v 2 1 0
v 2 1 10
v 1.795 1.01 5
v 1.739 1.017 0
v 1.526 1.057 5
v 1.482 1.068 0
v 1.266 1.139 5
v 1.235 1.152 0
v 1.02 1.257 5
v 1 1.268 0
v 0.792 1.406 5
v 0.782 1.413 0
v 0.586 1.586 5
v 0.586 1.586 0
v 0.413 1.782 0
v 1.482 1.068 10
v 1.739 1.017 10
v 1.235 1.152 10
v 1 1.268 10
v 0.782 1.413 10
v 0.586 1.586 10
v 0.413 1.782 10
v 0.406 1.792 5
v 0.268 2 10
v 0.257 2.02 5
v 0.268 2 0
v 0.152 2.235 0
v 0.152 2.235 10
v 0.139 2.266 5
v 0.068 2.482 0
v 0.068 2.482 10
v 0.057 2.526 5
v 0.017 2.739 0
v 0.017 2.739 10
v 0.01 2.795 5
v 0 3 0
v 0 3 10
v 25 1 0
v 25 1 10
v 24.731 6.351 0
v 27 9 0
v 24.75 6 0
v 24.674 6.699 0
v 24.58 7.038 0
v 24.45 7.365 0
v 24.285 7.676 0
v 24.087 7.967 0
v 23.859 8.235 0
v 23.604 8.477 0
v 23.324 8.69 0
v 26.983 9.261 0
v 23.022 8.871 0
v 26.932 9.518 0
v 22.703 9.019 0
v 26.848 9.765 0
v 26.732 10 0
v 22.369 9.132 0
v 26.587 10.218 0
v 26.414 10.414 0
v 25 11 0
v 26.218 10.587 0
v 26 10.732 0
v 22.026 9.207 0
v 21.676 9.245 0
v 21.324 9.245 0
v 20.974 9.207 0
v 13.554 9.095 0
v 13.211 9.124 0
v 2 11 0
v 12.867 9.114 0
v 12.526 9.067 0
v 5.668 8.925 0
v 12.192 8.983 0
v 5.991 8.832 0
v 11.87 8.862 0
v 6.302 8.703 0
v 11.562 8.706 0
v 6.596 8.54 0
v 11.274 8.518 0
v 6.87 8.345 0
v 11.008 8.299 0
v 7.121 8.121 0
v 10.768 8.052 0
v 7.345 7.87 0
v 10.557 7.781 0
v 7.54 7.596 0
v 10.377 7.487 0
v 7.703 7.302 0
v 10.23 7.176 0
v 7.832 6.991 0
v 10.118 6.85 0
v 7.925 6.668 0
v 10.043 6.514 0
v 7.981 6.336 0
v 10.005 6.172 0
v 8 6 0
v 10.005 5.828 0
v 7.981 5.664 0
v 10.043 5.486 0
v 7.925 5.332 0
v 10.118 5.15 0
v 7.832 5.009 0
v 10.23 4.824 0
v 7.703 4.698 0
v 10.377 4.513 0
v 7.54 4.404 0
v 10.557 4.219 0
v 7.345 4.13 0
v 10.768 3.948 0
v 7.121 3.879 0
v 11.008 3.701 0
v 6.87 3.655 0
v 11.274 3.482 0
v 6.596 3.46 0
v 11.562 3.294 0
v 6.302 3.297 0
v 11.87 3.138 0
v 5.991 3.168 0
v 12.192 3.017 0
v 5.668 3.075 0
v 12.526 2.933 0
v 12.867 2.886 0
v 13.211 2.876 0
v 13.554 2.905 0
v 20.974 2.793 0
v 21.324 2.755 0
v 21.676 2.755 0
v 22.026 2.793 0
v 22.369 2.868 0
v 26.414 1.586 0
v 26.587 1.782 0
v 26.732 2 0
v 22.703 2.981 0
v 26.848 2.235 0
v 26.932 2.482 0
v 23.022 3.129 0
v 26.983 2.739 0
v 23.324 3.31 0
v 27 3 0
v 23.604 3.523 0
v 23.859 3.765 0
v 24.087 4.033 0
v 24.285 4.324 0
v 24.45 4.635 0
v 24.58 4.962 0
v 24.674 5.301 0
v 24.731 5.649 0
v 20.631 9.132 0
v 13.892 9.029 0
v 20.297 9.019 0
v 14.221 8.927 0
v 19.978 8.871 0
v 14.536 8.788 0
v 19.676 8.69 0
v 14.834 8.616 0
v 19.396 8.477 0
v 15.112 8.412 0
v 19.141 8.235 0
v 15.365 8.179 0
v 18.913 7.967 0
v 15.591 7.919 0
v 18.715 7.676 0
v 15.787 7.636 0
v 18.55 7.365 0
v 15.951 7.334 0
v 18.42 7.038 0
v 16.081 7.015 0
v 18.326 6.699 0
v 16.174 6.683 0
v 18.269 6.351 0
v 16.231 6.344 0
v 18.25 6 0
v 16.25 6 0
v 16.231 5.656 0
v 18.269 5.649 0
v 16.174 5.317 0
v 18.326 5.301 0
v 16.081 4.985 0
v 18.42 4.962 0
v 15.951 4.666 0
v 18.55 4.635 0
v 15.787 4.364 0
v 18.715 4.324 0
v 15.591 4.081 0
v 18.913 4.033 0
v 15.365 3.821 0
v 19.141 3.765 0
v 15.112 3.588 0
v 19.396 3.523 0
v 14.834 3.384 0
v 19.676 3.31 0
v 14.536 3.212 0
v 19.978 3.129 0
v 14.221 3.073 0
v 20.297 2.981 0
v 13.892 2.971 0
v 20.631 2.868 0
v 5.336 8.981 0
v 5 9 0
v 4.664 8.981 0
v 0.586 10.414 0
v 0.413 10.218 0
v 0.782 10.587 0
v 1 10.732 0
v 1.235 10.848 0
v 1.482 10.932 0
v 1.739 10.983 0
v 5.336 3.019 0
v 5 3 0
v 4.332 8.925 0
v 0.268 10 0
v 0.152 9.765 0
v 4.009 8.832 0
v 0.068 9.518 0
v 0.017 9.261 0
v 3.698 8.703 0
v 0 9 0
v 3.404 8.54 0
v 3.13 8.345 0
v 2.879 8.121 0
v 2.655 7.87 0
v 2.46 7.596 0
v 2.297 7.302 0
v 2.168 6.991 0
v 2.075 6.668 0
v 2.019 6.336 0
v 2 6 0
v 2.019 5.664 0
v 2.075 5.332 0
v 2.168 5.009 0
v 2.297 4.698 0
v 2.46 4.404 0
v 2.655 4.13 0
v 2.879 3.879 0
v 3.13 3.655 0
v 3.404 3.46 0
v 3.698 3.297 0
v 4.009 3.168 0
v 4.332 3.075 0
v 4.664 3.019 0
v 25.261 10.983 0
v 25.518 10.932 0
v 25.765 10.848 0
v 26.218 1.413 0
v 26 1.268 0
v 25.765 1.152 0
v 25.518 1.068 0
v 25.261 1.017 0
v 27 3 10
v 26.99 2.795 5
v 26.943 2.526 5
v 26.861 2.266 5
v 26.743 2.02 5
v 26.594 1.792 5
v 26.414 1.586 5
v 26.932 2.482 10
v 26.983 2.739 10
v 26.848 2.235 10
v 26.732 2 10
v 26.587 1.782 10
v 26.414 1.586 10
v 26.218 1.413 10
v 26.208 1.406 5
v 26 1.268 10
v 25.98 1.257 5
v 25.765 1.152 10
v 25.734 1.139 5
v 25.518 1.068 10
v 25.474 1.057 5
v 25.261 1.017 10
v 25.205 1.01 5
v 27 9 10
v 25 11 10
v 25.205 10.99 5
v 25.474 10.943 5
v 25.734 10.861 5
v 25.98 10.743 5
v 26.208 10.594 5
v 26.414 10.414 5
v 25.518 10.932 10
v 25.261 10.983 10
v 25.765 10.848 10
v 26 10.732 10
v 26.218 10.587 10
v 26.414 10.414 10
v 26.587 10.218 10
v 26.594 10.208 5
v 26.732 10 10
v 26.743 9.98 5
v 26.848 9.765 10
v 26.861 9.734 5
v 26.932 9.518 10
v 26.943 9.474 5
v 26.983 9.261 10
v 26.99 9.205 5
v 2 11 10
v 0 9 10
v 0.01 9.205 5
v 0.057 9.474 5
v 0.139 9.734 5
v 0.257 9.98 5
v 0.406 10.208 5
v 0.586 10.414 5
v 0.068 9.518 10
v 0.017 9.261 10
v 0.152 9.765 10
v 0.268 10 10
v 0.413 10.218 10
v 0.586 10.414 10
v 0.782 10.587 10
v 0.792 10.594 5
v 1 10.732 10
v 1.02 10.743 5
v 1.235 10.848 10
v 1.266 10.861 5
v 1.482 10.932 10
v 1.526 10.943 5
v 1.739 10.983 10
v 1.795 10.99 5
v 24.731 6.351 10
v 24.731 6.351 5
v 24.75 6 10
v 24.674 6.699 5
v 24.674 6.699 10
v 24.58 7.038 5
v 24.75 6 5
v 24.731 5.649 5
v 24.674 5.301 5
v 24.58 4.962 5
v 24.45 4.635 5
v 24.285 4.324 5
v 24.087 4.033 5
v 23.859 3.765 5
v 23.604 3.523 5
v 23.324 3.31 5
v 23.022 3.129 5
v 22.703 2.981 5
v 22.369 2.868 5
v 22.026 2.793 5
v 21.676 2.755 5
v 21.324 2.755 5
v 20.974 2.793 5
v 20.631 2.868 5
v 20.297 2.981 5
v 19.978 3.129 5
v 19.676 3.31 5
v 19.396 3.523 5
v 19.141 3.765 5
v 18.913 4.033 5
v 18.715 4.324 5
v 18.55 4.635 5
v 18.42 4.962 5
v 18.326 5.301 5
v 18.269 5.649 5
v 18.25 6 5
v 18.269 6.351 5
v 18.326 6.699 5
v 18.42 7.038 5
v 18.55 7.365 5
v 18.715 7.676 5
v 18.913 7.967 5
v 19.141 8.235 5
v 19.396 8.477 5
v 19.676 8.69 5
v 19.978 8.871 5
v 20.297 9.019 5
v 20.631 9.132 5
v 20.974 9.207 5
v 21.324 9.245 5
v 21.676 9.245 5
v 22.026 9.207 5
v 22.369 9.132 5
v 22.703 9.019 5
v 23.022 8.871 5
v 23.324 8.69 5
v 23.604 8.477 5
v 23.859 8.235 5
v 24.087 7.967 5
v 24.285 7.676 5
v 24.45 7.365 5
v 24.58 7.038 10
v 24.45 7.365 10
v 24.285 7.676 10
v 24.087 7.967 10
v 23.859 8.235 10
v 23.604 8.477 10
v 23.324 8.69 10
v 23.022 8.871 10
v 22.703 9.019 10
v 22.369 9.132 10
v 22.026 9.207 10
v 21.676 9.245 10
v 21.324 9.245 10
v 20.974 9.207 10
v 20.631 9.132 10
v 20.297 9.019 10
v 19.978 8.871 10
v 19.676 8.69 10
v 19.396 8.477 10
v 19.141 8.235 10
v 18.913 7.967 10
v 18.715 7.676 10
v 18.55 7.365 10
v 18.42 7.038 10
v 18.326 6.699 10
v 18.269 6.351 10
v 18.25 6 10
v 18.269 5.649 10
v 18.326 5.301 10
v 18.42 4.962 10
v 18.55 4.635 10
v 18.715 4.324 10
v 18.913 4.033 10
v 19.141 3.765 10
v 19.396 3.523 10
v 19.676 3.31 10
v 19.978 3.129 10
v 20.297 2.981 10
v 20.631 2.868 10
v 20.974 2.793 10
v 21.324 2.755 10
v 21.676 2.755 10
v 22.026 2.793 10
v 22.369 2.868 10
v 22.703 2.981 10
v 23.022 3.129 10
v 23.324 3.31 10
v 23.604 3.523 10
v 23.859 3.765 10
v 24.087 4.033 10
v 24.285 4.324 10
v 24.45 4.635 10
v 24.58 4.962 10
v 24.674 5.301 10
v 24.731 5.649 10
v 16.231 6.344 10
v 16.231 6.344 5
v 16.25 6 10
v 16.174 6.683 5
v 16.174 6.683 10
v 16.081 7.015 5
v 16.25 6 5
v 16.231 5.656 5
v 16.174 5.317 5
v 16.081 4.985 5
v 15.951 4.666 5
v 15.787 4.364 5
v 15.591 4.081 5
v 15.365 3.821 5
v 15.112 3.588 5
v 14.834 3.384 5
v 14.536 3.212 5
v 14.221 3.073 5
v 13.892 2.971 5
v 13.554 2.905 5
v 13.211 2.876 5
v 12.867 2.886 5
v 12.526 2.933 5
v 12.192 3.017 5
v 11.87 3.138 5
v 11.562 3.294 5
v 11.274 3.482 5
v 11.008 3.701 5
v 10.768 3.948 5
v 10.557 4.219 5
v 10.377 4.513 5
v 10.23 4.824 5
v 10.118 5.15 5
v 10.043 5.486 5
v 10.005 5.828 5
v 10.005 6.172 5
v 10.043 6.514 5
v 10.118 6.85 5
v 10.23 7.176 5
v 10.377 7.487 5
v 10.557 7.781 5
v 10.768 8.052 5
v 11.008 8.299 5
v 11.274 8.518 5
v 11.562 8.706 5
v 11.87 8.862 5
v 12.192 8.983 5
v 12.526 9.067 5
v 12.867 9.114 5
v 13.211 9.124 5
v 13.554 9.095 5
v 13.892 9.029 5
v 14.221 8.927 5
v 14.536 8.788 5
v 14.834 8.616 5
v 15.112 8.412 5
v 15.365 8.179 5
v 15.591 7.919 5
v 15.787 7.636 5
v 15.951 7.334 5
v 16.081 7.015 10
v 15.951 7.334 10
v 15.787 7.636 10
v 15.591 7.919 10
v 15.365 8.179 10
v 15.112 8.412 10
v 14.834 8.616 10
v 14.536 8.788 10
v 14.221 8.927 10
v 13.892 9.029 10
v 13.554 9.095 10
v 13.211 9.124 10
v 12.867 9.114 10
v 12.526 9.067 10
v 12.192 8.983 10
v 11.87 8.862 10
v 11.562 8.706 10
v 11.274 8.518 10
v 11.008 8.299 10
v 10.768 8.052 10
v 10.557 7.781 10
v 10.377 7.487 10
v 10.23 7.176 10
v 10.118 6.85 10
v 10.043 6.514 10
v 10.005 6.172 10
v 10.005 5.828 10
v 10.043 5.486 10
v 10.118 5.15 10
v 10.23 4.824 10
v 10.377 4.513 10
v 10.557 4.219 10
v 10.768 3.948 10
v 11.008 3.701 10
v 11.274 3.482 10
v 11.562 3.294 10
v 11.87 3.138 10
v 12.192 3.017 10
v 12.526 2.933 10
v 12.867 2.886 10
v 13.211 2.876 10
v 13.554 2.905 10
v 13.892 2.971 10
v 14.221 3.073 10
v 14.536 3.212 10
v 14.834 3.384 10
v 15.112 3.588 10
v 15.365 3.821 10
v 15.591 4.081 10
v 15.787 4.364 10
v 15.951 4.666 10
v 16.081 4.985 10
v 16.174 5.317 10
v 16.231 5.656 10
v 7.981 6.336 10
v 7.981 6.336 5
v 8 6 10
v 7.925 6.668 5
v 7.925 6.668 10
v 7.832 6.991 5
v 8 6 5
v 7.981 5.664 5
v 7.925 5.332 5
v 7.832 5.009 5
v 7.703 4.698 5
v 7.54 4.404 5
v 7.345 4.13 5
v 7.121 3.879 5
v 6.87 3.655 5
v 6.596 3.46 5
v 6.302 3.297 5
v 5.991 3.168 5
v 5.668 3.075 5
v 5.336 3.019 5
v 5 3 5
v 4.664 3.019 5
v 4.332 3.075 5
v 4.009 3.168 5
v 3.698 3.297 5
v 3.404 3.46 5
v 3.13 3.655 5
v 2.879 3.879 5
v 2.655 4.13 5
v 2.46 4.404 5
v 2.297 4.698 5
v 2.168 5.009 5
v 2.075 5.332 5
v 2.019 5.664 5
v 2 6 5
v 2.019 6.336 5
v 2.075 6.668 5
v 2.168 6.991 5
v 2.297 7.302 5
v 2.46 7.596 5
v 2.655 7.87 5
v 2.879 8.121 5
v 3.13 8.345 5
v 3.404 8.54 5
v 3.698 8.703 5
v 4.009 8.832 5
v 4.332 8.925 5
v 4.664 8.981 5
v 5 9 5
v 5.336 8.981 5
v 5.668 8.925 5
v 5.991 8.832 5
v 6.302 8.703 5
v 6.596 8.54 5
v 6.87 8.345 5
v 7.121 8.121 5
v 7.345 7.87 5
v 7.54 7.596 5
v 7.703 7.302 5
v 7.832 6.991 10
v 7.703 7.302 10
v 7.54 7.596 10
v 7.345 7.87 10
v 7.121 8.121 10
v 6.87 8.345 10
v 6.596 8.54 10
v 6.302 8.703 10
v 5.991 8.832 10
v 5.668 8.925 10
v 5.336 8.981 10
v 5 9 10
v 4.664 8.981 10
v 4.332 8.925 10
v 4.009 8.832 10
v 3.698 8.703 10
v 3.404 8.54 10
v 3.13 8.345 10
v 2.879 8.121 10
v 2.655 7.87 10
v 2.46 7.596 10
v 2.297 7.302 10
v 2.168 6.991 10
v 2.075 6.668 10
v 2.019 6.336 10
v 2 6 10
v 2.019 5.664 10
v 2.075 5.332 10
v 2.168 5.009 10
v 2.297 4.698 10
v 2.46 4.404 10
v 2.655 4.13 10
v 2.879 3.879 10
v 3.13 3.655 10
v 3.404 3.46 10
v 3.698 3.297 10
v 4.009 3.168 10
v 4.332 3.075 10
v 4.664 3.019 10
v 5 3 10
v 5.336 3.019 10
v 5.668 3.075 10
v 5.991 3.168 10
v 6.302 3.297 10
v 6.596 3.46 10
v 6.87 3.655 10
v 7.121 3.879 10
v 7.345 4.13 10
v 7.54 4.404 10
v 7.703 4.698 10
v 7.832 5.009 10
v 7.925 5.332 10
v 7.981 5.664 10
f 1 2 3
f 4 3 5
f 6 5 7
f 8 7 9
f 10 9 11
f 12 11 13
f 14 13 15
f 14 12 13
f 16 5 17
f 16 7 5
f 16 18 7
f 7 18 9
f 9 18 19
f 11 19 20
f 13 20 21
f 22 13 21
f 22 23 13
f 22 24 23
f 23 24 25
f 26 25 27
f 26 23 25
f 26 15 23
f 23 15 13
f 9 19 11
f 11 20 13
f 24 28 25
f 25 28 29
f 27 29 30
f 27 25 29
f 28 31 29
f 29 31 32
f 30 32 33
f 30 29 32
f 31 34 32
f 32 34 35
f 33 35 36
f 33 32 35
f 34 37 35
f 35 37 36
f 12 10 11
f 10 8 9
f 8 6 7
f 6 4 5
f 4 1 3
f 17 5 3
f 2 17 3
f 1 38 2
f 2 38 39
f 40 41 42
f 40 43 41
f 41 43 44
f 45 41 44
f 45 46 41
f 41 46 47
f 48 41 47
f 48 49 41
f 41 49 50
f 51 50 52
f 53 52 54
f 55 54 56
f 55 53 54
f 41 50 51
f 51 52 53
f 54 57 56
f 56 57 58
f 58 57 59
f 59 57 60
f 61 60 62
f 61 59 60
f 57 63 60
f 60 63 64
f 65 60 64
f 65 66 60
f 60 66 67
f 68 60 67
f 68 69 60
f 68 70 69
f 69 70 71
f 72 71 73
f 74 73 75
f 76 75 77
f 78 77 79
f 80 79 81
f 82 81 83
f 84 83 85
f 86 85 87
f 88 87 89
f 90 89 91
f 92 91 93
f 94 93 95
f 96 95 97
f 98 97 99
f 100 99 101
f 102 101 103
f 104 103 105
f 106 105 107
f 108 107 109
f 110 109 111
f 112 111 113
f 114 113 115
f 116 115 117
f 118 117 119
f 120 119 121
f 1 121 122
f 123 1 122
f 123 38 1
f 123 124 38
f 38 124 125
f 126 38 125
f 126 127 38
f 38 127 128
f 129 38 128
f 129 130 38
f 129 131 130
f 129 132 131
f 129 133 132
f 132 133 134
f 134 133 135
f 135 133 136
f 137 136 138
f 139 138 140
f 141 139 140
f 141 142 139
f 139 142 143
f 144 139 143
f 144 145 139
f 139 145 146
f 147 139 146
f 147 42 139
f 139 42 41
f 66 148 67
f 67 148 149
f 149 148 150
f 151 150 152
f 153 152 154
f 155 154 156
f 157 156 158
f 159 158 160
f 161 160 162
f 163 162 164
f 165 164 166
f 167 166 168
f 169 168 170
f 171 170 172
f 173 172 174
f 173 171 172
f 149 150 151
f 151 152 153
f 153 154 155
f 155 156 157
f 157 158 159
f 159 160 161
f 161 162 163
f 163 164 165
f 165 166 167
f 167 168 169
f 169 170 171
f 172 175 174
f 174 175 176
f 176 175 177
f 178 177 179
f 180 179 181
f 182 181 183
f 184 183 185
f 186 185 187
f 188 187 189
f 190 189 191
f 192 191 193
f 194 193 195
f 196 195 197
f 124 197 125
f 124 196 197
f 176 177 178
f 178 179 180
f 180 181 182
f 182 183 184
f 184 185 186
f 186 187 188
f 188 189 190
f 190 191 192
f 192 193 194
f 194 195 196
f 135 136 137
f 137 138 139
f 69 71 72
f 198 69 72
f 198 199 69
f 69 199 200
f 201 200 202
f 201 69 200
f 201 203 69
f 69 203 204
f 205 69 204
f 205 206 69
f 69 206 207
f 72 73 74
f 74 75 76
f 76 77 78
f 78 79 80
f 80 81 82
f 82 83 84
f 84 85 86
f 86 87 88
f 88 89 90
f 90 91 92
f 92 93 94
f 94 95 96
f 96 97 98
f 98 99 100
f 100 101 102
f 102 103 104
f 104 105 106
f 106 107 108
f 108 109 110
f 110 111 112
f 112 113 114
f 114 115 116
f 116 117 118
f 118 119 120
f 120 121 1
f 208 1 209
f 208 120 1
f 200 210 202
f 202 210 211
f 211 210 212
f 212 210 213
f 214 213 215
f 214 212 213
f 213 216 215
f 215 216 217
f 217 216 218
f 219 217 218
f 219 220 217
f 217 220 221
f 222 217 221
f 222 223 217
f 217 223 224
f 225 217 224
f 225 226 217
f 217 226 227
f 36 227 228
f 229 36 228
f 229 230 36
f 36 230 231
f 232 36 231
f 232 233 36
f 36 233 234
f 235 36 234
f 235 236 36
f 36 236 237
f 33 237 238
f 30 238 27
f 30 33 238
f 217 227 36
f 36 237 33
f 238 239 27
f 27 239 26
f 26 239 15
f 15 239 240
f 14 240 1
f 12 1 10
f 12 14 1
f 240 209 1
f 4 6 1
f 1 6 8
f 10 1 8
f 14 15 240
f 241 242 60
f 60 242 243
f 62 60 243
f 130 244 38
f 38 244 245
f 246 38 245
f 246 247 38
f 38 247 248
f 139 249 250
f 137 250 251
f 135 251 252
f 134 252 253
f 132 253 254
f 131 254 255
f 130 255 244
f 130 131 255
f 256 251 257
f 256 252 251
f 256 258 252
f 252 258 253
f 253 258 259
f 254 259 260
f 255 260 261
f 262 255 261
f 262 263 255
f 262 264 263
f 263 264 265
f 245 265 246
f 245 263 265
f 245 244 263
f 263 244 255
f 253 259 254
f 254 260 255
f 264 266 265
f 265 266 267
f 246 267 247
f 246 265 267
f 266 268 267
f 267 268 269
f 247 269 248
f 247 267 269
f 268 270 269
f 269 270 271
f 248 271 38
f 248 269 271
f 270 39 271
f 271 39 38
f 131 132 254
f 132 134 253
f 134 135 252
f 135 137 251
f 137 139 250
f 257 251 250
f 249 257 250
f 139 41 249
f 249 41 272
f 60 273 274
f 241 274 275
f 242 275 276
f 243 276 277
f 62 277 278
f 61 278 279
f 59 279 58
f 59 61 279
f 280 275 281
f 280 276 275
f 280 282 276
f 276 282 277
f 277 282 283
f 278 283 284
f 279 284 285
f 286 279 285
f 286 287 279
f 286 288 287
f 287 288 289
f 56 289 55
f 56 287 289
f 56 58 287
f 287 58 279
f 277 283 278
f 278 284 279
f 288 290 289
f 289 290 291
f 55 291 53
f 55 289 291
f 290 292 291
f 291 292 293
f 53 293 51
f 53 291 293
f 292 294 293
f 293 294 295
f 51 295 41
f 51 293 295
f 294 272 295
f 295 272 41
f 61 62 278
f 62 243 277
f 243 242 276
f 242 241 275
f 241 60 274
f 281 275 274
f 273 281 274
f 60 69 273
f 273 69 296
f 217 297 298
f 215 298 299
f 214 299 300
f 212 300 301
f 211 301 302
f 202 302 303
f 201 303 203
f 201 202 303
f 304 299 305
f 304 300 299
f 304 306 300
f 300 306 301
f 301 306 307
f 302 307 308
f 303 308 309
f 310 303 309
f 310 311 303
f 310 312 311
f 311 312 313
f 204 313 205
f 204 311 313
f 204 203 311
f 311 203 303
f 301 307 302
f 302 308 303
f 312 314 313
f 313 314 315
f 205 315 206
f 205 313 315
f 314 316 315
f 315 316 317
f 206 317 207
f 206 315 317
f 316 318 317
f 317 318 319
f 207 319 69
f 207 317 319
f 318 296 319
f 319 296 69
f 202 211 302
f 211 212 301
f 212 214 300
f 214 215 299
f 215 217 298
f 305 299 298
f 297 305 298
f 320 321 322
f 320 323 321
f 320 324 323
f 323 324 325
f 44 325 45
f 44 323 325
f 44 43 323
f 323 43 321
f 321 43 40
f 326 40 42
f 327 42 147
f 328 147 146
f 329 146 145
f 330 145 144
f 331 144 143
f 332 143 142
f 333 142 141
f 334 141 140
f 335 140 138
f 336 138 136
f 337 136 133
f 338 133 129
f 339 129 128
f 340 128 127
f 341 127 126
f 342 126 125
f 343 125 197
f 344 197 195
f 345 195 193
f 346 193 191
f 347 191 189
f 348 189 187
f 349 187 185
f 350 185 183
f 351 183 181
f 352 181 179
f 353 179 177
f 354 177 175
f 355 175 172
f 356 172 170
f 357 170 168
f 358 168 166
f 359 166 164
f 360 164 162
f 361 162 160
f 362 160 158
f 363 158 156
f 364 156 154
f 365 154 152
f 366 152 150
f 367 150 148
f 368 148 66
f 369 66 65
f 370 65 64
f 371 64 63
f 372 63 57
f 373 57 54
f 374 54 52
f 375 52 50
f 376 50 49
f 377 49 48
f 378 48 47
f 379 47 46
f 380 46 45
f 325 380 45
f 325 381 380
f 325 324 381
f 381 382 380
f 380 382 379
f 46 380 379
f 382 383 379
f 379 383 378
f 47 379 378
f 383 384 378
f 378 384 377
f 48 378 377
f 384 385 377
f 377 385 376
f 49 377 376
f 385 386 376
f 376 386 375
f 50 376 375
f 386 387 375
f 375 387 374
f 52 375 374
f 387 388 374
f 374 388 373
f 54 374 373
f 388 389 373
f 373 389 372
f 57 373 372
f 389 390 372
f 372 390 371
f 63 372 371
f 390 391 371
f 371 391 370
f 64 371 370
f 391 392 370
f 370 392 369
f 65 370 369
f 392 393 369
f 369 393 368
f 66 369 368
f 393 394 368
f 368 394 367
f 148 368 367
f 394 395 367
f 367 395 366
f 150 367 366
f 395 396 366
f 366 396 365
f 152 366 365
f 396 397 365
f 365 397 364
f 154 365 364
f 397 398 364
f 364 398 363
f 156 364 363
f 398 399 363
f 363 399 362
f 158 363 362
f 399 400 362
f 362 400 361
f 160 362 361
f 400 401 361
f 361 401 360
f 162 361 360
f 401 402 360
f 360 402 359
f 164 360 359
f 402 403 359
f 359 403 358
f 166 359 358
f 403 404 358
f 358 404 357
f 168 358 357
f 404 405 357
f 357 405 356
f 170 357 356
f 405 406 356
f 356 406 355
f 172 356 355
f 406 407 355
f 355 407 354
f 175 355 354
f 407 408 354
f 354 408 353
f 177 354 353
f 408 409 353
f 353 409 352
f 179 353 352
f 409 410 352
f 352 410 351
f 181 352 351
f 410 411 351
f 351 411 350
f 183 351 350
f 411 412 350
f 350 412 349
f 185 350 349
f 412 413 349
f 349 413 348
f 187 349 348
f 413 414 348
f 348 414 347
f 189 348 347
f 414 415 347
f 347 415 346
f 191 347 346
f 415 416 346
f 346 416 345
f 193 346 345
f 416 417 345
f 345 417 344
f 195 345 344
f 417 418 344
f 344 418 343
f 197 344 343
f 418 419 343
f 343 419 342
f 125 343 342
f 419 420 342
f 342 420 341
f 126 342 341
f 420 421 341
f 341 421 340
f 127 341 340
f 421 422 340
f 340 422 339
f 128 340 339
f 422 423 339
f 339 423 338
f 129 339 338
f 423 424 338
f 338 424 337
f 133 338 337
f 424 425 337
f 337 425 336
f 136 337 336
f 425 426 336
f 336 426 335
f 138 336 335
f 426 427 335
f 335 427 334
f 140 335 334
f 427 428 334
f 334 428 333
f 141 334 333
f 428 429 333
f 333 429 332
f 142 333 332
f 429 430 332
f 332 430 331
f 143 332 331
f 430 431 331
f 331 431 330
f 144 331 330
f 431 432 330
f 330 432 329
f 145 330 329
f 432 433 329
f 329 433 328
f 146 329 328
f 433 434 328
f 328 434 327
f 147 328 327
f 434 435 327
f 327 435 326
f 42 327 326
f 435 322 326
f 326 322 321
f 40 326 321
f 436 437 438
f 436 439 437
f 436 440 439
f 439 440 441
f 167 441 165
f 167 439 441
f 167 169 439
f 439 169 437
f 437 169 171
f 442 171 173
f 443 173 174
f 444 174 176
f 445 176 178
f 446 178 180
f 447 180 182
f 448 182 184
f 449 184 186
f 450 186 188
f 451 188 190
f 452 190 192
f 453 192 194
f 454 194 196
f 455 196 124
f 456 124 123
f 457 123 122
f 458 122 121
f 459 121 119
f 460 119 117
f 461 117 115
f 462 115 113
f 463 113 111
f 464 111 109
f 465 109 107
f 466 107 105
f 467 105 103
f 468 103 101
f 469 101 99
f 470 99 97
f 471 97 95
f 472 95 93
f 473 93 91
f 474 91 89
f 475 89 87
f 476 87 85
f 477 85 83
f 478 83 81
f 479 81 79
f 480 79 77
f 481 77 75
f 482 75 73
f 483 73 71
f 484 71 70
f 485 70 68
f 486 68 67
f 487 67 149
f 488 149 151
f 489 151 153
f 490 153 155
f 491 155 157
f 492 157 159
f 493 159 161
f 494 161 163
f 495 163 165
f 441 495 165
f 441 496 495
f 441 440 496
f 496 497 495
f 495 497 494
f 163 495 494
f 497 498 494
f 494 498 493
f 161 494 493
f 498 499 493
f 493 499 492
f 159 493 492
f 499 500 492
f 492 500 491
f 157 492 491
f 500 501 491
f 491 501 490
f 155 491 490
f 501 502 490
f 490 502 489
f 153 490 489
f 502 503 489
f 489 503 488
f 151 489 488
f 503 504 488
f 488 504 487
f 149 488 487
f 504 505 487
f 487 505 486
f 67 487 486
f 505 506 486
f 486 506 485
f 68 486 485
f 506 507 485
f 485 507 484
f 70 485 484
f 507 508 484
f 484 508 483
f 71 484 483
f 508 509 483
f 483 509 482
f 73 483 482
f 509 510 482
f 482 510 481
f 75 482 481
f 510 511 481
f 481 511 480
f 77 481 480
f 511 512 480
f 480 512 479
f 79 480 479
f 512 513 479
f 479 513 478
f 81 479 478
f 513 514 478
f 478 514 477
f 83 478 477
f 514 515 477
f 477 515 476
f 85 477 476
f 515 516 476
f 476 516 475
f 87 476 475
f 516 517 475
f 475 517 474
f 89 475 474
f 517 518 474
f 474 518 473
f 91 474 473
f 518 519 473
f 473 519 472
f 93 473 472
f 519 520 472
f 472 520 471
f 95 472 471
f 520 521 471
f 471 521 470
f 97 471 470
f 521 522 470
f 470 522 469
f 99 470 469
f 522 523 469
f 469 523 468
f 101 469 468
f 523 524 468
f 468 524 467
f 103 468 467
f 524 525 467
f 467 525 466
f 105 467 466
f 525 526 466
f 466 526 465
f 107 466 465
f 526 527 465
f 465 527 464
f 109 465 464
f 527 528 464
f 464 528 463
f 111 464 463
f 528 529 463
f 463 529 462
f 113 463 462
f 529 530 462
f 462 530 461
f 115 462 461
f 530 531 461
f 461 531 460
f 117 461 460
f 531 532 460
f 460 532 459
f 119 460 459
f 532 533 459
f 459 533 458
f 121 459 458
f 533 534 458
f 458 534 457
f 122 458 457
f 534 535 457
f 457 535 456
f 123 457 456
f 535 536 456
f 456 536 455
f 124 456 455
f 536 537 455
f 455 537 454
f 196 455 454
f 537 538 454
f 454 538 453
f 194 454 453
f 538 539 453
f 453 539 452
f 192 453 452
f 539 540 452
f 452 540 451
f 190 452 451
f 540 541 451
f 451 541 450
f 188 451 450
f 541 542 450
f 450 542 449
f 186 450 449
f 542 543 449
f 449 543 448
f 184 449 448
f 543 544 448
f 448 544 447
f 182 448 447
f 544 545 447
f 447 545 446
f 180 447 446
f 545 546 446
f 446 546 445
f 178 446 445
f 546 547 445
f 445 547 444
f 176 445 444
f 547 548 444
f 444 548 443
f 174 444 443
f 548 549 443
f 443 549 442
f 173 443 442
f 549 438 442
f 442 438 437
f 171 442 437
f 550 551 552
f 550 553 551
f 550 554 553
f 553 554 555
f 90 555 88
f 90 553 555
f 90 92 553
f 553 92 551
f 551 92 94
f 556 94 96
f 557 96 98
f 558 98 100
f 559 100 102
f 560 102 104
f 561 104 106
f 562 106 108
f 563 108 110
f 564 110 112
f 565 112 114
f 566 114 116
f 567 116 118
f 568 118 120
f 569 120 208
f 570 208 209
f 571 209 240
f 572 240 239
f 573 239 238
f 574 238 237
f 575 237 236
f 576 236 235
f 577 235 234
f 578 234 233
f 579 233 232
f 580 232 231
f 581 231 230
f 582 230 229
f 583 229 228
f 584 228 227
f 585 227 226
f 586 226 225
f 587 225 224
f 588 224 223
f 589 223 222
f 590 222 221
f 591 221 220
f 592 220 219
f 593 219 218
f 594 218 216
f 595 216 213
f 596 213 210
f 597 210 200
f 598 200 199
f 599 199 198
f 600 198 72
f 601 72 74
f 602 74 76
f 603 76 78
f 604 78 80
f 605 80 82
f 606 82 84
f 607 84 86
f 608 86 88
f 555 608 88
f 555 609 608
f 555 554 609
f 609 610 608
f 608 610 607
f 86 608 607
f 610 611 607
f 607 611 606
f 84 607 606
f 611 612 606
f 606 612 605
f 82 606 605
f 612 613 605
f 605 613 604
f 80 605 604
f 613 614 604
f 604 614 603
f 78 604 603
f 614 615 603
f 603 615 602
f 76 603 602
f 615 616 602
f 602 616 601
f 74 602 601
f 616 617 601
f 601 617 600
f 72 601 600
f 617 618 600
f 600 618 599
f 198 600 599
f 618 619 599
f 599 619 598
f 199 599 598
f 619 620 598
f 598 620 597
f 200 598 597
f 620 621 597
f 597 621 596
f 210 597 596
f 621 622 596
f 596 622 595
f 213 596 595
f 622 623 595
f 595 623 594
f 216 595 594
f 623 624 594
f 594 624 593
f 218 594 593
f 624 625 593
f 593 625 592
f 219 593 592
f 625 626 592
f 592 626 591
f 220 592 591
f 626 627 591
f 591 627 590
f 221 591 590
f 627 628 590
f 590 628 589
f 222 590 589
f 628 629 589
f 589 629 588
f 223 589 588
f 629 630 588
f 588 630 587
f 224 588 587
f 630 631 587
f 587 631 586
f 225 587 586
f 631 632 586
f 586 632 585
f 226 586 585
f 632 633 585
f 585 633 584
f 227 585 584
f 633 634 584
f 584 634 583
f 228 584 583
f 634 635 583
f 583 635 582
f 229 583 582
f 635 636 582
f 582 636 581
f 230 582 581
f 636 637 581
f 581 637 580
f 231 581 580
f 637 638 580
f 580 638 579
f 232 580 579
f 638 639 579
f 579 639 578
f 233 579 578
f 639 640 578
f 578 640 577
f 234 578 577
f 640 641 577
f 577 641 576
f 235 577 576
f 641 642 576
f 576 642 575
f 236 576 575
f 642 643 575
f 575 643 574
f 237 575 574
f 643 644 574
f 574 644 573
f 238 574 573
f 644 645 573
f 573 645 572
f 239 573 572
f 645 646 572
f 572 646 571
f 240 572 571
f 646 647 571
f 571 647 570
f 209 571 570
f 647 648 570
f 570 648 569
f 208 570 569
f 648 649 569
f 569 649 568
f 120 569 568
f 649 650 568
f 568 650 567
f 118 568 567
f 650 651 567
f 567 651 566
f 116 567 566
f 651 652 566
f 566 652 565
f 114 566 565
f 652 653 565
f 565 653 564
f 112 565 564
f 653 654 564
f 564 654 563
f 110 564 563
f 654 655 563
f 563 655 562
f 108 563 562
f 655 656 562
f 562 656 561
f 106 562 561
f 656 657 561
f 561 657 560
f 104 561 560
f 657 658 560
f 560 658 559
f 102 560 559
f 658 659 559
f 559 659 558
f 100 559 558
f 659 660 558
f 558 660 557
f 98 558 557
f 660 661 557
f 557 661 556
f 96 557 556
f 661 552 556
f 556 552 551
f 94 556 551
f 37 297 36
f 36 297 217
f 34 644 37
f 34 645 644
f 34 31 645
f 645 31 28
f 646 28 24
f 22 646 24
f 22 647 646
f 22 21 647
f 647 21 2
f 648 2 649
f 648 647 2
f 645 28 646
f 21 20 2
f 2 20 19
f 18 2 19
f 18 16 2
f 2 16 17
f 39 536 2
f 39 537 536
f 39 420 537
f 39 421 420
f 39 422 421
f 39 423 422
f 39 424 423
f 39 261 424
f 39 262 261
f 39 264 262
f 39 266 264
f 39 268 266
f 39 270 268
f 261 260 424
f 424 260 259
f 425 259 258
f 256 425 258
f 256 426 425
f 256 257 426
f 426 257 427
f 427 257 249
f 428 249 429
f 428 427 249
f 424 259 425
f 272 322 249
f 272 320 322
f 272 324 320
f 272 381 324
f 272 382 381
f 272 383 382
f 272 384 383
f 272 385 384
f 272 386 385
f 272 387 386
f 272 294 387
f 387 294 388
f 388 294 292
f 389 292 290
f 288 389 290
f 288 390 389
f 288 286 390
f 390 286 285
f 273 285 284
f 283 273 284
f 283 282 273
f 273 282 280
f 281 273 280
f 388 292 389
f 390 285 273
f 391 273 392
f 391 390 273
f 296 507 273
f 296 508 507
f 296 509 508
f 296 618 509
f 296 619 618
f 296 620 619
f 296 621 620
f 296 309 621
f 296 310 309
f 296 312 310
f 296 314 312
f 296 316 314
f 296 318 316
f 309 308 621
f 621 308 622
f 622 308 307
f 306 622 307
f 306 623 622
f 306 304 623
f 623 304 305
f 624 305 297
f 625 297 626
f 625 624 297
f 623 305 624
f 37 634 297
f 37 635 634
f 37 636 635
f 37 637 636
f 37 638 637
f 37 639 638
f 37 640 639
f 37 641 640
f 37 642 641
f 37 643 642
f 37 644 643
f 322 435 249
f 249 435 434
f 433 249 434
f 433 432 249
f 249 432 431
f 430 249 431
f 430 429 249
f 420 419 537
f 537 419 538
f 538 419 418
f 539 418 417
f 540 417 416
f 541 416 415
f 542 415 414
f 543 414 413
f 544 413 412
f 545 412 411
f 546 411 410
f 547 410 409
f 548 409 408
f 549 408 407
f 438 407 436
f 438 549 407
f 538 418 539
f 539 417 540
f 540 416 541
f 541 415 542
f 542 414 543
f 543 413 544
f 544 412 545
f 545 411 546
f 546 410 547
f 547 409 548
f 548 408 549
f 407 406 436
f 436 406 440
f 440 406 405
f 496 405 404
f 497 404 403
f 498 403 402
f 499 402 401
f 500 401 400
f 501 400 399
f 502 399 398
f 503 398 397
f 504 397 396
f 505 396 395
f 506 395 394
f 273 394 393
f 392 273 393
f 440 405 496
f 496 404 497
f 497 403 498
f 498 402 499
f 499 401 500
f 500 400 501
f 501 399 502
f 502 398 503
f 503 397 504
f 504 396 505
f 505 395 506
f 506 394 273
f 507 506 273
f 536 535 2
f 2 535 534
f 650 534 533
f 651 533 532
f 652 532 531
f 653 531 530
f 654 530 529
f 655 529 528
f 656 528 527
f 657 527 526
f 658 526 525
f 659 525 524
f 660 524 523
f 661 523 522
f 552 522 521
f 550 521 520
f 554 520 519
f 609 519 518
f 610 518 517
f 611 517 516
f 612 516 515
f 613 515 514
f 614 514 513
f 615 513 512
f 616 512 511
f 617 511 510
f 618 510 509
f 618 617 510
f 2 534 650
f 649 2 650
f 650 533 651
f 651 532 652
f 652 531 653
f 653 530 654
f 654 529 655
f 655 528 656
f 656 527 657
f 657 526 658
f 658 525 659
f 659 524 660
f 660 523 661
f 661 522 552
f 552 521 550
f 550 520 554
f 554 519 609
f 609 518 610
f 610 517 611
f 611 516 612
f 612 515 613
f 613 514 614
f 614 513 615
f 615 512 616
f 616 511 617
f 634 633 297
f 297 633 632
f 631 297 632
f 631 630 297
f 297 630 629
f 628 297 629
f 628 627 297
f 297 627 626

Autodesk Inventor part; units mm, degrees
ref_plane "YZ Plane" through (0, 0, 0) normal (1, 0, 0) x (0, 1, 0)
ref_plane "XZ Plane" through (0, 0, 0) normal (0, 1, 0) x (-1, 0, 0)
ref_plane "XY Plane" through (0, 0, 0) normal (0, 0, 1) x (1, 0, 0)
sketch "Sketch1" plane through (0, 0, 0) normal (0, 0, 1) x (1, 0, 0)
  line L0 (27, 1) -> (27, 11)
  line L1 (0, 11) -> (0, 1)
  circle A0 centre (5, 6) radius 3
  circle A1 centre (13.125, 6) radius 3.125
  circle A2 centre (21.5, 6) radius 3.25
  line L2 (0, 11) -> (27, 11)
  line L3 (0, 1) -> (27, 1)
  point P0 (0, 0)
  dimension "d2" = 6
  dimension "d3" = 6.25
  dimension "d4" = 6.5
  dimension "d7" = 8.375
  dimension "d8" = 5
  dimension "d9" = 5
extrude "Extrusion1" add sketch "Sketch1" along normal blind 10
fillet "Fillet1" radius 2 4 edges at (0, 11, 5) (27, 11, 5) (27, 1, 5) (0, 1, 5)
properties part number "6mmHoleTest6-6.25-6.5mm"
